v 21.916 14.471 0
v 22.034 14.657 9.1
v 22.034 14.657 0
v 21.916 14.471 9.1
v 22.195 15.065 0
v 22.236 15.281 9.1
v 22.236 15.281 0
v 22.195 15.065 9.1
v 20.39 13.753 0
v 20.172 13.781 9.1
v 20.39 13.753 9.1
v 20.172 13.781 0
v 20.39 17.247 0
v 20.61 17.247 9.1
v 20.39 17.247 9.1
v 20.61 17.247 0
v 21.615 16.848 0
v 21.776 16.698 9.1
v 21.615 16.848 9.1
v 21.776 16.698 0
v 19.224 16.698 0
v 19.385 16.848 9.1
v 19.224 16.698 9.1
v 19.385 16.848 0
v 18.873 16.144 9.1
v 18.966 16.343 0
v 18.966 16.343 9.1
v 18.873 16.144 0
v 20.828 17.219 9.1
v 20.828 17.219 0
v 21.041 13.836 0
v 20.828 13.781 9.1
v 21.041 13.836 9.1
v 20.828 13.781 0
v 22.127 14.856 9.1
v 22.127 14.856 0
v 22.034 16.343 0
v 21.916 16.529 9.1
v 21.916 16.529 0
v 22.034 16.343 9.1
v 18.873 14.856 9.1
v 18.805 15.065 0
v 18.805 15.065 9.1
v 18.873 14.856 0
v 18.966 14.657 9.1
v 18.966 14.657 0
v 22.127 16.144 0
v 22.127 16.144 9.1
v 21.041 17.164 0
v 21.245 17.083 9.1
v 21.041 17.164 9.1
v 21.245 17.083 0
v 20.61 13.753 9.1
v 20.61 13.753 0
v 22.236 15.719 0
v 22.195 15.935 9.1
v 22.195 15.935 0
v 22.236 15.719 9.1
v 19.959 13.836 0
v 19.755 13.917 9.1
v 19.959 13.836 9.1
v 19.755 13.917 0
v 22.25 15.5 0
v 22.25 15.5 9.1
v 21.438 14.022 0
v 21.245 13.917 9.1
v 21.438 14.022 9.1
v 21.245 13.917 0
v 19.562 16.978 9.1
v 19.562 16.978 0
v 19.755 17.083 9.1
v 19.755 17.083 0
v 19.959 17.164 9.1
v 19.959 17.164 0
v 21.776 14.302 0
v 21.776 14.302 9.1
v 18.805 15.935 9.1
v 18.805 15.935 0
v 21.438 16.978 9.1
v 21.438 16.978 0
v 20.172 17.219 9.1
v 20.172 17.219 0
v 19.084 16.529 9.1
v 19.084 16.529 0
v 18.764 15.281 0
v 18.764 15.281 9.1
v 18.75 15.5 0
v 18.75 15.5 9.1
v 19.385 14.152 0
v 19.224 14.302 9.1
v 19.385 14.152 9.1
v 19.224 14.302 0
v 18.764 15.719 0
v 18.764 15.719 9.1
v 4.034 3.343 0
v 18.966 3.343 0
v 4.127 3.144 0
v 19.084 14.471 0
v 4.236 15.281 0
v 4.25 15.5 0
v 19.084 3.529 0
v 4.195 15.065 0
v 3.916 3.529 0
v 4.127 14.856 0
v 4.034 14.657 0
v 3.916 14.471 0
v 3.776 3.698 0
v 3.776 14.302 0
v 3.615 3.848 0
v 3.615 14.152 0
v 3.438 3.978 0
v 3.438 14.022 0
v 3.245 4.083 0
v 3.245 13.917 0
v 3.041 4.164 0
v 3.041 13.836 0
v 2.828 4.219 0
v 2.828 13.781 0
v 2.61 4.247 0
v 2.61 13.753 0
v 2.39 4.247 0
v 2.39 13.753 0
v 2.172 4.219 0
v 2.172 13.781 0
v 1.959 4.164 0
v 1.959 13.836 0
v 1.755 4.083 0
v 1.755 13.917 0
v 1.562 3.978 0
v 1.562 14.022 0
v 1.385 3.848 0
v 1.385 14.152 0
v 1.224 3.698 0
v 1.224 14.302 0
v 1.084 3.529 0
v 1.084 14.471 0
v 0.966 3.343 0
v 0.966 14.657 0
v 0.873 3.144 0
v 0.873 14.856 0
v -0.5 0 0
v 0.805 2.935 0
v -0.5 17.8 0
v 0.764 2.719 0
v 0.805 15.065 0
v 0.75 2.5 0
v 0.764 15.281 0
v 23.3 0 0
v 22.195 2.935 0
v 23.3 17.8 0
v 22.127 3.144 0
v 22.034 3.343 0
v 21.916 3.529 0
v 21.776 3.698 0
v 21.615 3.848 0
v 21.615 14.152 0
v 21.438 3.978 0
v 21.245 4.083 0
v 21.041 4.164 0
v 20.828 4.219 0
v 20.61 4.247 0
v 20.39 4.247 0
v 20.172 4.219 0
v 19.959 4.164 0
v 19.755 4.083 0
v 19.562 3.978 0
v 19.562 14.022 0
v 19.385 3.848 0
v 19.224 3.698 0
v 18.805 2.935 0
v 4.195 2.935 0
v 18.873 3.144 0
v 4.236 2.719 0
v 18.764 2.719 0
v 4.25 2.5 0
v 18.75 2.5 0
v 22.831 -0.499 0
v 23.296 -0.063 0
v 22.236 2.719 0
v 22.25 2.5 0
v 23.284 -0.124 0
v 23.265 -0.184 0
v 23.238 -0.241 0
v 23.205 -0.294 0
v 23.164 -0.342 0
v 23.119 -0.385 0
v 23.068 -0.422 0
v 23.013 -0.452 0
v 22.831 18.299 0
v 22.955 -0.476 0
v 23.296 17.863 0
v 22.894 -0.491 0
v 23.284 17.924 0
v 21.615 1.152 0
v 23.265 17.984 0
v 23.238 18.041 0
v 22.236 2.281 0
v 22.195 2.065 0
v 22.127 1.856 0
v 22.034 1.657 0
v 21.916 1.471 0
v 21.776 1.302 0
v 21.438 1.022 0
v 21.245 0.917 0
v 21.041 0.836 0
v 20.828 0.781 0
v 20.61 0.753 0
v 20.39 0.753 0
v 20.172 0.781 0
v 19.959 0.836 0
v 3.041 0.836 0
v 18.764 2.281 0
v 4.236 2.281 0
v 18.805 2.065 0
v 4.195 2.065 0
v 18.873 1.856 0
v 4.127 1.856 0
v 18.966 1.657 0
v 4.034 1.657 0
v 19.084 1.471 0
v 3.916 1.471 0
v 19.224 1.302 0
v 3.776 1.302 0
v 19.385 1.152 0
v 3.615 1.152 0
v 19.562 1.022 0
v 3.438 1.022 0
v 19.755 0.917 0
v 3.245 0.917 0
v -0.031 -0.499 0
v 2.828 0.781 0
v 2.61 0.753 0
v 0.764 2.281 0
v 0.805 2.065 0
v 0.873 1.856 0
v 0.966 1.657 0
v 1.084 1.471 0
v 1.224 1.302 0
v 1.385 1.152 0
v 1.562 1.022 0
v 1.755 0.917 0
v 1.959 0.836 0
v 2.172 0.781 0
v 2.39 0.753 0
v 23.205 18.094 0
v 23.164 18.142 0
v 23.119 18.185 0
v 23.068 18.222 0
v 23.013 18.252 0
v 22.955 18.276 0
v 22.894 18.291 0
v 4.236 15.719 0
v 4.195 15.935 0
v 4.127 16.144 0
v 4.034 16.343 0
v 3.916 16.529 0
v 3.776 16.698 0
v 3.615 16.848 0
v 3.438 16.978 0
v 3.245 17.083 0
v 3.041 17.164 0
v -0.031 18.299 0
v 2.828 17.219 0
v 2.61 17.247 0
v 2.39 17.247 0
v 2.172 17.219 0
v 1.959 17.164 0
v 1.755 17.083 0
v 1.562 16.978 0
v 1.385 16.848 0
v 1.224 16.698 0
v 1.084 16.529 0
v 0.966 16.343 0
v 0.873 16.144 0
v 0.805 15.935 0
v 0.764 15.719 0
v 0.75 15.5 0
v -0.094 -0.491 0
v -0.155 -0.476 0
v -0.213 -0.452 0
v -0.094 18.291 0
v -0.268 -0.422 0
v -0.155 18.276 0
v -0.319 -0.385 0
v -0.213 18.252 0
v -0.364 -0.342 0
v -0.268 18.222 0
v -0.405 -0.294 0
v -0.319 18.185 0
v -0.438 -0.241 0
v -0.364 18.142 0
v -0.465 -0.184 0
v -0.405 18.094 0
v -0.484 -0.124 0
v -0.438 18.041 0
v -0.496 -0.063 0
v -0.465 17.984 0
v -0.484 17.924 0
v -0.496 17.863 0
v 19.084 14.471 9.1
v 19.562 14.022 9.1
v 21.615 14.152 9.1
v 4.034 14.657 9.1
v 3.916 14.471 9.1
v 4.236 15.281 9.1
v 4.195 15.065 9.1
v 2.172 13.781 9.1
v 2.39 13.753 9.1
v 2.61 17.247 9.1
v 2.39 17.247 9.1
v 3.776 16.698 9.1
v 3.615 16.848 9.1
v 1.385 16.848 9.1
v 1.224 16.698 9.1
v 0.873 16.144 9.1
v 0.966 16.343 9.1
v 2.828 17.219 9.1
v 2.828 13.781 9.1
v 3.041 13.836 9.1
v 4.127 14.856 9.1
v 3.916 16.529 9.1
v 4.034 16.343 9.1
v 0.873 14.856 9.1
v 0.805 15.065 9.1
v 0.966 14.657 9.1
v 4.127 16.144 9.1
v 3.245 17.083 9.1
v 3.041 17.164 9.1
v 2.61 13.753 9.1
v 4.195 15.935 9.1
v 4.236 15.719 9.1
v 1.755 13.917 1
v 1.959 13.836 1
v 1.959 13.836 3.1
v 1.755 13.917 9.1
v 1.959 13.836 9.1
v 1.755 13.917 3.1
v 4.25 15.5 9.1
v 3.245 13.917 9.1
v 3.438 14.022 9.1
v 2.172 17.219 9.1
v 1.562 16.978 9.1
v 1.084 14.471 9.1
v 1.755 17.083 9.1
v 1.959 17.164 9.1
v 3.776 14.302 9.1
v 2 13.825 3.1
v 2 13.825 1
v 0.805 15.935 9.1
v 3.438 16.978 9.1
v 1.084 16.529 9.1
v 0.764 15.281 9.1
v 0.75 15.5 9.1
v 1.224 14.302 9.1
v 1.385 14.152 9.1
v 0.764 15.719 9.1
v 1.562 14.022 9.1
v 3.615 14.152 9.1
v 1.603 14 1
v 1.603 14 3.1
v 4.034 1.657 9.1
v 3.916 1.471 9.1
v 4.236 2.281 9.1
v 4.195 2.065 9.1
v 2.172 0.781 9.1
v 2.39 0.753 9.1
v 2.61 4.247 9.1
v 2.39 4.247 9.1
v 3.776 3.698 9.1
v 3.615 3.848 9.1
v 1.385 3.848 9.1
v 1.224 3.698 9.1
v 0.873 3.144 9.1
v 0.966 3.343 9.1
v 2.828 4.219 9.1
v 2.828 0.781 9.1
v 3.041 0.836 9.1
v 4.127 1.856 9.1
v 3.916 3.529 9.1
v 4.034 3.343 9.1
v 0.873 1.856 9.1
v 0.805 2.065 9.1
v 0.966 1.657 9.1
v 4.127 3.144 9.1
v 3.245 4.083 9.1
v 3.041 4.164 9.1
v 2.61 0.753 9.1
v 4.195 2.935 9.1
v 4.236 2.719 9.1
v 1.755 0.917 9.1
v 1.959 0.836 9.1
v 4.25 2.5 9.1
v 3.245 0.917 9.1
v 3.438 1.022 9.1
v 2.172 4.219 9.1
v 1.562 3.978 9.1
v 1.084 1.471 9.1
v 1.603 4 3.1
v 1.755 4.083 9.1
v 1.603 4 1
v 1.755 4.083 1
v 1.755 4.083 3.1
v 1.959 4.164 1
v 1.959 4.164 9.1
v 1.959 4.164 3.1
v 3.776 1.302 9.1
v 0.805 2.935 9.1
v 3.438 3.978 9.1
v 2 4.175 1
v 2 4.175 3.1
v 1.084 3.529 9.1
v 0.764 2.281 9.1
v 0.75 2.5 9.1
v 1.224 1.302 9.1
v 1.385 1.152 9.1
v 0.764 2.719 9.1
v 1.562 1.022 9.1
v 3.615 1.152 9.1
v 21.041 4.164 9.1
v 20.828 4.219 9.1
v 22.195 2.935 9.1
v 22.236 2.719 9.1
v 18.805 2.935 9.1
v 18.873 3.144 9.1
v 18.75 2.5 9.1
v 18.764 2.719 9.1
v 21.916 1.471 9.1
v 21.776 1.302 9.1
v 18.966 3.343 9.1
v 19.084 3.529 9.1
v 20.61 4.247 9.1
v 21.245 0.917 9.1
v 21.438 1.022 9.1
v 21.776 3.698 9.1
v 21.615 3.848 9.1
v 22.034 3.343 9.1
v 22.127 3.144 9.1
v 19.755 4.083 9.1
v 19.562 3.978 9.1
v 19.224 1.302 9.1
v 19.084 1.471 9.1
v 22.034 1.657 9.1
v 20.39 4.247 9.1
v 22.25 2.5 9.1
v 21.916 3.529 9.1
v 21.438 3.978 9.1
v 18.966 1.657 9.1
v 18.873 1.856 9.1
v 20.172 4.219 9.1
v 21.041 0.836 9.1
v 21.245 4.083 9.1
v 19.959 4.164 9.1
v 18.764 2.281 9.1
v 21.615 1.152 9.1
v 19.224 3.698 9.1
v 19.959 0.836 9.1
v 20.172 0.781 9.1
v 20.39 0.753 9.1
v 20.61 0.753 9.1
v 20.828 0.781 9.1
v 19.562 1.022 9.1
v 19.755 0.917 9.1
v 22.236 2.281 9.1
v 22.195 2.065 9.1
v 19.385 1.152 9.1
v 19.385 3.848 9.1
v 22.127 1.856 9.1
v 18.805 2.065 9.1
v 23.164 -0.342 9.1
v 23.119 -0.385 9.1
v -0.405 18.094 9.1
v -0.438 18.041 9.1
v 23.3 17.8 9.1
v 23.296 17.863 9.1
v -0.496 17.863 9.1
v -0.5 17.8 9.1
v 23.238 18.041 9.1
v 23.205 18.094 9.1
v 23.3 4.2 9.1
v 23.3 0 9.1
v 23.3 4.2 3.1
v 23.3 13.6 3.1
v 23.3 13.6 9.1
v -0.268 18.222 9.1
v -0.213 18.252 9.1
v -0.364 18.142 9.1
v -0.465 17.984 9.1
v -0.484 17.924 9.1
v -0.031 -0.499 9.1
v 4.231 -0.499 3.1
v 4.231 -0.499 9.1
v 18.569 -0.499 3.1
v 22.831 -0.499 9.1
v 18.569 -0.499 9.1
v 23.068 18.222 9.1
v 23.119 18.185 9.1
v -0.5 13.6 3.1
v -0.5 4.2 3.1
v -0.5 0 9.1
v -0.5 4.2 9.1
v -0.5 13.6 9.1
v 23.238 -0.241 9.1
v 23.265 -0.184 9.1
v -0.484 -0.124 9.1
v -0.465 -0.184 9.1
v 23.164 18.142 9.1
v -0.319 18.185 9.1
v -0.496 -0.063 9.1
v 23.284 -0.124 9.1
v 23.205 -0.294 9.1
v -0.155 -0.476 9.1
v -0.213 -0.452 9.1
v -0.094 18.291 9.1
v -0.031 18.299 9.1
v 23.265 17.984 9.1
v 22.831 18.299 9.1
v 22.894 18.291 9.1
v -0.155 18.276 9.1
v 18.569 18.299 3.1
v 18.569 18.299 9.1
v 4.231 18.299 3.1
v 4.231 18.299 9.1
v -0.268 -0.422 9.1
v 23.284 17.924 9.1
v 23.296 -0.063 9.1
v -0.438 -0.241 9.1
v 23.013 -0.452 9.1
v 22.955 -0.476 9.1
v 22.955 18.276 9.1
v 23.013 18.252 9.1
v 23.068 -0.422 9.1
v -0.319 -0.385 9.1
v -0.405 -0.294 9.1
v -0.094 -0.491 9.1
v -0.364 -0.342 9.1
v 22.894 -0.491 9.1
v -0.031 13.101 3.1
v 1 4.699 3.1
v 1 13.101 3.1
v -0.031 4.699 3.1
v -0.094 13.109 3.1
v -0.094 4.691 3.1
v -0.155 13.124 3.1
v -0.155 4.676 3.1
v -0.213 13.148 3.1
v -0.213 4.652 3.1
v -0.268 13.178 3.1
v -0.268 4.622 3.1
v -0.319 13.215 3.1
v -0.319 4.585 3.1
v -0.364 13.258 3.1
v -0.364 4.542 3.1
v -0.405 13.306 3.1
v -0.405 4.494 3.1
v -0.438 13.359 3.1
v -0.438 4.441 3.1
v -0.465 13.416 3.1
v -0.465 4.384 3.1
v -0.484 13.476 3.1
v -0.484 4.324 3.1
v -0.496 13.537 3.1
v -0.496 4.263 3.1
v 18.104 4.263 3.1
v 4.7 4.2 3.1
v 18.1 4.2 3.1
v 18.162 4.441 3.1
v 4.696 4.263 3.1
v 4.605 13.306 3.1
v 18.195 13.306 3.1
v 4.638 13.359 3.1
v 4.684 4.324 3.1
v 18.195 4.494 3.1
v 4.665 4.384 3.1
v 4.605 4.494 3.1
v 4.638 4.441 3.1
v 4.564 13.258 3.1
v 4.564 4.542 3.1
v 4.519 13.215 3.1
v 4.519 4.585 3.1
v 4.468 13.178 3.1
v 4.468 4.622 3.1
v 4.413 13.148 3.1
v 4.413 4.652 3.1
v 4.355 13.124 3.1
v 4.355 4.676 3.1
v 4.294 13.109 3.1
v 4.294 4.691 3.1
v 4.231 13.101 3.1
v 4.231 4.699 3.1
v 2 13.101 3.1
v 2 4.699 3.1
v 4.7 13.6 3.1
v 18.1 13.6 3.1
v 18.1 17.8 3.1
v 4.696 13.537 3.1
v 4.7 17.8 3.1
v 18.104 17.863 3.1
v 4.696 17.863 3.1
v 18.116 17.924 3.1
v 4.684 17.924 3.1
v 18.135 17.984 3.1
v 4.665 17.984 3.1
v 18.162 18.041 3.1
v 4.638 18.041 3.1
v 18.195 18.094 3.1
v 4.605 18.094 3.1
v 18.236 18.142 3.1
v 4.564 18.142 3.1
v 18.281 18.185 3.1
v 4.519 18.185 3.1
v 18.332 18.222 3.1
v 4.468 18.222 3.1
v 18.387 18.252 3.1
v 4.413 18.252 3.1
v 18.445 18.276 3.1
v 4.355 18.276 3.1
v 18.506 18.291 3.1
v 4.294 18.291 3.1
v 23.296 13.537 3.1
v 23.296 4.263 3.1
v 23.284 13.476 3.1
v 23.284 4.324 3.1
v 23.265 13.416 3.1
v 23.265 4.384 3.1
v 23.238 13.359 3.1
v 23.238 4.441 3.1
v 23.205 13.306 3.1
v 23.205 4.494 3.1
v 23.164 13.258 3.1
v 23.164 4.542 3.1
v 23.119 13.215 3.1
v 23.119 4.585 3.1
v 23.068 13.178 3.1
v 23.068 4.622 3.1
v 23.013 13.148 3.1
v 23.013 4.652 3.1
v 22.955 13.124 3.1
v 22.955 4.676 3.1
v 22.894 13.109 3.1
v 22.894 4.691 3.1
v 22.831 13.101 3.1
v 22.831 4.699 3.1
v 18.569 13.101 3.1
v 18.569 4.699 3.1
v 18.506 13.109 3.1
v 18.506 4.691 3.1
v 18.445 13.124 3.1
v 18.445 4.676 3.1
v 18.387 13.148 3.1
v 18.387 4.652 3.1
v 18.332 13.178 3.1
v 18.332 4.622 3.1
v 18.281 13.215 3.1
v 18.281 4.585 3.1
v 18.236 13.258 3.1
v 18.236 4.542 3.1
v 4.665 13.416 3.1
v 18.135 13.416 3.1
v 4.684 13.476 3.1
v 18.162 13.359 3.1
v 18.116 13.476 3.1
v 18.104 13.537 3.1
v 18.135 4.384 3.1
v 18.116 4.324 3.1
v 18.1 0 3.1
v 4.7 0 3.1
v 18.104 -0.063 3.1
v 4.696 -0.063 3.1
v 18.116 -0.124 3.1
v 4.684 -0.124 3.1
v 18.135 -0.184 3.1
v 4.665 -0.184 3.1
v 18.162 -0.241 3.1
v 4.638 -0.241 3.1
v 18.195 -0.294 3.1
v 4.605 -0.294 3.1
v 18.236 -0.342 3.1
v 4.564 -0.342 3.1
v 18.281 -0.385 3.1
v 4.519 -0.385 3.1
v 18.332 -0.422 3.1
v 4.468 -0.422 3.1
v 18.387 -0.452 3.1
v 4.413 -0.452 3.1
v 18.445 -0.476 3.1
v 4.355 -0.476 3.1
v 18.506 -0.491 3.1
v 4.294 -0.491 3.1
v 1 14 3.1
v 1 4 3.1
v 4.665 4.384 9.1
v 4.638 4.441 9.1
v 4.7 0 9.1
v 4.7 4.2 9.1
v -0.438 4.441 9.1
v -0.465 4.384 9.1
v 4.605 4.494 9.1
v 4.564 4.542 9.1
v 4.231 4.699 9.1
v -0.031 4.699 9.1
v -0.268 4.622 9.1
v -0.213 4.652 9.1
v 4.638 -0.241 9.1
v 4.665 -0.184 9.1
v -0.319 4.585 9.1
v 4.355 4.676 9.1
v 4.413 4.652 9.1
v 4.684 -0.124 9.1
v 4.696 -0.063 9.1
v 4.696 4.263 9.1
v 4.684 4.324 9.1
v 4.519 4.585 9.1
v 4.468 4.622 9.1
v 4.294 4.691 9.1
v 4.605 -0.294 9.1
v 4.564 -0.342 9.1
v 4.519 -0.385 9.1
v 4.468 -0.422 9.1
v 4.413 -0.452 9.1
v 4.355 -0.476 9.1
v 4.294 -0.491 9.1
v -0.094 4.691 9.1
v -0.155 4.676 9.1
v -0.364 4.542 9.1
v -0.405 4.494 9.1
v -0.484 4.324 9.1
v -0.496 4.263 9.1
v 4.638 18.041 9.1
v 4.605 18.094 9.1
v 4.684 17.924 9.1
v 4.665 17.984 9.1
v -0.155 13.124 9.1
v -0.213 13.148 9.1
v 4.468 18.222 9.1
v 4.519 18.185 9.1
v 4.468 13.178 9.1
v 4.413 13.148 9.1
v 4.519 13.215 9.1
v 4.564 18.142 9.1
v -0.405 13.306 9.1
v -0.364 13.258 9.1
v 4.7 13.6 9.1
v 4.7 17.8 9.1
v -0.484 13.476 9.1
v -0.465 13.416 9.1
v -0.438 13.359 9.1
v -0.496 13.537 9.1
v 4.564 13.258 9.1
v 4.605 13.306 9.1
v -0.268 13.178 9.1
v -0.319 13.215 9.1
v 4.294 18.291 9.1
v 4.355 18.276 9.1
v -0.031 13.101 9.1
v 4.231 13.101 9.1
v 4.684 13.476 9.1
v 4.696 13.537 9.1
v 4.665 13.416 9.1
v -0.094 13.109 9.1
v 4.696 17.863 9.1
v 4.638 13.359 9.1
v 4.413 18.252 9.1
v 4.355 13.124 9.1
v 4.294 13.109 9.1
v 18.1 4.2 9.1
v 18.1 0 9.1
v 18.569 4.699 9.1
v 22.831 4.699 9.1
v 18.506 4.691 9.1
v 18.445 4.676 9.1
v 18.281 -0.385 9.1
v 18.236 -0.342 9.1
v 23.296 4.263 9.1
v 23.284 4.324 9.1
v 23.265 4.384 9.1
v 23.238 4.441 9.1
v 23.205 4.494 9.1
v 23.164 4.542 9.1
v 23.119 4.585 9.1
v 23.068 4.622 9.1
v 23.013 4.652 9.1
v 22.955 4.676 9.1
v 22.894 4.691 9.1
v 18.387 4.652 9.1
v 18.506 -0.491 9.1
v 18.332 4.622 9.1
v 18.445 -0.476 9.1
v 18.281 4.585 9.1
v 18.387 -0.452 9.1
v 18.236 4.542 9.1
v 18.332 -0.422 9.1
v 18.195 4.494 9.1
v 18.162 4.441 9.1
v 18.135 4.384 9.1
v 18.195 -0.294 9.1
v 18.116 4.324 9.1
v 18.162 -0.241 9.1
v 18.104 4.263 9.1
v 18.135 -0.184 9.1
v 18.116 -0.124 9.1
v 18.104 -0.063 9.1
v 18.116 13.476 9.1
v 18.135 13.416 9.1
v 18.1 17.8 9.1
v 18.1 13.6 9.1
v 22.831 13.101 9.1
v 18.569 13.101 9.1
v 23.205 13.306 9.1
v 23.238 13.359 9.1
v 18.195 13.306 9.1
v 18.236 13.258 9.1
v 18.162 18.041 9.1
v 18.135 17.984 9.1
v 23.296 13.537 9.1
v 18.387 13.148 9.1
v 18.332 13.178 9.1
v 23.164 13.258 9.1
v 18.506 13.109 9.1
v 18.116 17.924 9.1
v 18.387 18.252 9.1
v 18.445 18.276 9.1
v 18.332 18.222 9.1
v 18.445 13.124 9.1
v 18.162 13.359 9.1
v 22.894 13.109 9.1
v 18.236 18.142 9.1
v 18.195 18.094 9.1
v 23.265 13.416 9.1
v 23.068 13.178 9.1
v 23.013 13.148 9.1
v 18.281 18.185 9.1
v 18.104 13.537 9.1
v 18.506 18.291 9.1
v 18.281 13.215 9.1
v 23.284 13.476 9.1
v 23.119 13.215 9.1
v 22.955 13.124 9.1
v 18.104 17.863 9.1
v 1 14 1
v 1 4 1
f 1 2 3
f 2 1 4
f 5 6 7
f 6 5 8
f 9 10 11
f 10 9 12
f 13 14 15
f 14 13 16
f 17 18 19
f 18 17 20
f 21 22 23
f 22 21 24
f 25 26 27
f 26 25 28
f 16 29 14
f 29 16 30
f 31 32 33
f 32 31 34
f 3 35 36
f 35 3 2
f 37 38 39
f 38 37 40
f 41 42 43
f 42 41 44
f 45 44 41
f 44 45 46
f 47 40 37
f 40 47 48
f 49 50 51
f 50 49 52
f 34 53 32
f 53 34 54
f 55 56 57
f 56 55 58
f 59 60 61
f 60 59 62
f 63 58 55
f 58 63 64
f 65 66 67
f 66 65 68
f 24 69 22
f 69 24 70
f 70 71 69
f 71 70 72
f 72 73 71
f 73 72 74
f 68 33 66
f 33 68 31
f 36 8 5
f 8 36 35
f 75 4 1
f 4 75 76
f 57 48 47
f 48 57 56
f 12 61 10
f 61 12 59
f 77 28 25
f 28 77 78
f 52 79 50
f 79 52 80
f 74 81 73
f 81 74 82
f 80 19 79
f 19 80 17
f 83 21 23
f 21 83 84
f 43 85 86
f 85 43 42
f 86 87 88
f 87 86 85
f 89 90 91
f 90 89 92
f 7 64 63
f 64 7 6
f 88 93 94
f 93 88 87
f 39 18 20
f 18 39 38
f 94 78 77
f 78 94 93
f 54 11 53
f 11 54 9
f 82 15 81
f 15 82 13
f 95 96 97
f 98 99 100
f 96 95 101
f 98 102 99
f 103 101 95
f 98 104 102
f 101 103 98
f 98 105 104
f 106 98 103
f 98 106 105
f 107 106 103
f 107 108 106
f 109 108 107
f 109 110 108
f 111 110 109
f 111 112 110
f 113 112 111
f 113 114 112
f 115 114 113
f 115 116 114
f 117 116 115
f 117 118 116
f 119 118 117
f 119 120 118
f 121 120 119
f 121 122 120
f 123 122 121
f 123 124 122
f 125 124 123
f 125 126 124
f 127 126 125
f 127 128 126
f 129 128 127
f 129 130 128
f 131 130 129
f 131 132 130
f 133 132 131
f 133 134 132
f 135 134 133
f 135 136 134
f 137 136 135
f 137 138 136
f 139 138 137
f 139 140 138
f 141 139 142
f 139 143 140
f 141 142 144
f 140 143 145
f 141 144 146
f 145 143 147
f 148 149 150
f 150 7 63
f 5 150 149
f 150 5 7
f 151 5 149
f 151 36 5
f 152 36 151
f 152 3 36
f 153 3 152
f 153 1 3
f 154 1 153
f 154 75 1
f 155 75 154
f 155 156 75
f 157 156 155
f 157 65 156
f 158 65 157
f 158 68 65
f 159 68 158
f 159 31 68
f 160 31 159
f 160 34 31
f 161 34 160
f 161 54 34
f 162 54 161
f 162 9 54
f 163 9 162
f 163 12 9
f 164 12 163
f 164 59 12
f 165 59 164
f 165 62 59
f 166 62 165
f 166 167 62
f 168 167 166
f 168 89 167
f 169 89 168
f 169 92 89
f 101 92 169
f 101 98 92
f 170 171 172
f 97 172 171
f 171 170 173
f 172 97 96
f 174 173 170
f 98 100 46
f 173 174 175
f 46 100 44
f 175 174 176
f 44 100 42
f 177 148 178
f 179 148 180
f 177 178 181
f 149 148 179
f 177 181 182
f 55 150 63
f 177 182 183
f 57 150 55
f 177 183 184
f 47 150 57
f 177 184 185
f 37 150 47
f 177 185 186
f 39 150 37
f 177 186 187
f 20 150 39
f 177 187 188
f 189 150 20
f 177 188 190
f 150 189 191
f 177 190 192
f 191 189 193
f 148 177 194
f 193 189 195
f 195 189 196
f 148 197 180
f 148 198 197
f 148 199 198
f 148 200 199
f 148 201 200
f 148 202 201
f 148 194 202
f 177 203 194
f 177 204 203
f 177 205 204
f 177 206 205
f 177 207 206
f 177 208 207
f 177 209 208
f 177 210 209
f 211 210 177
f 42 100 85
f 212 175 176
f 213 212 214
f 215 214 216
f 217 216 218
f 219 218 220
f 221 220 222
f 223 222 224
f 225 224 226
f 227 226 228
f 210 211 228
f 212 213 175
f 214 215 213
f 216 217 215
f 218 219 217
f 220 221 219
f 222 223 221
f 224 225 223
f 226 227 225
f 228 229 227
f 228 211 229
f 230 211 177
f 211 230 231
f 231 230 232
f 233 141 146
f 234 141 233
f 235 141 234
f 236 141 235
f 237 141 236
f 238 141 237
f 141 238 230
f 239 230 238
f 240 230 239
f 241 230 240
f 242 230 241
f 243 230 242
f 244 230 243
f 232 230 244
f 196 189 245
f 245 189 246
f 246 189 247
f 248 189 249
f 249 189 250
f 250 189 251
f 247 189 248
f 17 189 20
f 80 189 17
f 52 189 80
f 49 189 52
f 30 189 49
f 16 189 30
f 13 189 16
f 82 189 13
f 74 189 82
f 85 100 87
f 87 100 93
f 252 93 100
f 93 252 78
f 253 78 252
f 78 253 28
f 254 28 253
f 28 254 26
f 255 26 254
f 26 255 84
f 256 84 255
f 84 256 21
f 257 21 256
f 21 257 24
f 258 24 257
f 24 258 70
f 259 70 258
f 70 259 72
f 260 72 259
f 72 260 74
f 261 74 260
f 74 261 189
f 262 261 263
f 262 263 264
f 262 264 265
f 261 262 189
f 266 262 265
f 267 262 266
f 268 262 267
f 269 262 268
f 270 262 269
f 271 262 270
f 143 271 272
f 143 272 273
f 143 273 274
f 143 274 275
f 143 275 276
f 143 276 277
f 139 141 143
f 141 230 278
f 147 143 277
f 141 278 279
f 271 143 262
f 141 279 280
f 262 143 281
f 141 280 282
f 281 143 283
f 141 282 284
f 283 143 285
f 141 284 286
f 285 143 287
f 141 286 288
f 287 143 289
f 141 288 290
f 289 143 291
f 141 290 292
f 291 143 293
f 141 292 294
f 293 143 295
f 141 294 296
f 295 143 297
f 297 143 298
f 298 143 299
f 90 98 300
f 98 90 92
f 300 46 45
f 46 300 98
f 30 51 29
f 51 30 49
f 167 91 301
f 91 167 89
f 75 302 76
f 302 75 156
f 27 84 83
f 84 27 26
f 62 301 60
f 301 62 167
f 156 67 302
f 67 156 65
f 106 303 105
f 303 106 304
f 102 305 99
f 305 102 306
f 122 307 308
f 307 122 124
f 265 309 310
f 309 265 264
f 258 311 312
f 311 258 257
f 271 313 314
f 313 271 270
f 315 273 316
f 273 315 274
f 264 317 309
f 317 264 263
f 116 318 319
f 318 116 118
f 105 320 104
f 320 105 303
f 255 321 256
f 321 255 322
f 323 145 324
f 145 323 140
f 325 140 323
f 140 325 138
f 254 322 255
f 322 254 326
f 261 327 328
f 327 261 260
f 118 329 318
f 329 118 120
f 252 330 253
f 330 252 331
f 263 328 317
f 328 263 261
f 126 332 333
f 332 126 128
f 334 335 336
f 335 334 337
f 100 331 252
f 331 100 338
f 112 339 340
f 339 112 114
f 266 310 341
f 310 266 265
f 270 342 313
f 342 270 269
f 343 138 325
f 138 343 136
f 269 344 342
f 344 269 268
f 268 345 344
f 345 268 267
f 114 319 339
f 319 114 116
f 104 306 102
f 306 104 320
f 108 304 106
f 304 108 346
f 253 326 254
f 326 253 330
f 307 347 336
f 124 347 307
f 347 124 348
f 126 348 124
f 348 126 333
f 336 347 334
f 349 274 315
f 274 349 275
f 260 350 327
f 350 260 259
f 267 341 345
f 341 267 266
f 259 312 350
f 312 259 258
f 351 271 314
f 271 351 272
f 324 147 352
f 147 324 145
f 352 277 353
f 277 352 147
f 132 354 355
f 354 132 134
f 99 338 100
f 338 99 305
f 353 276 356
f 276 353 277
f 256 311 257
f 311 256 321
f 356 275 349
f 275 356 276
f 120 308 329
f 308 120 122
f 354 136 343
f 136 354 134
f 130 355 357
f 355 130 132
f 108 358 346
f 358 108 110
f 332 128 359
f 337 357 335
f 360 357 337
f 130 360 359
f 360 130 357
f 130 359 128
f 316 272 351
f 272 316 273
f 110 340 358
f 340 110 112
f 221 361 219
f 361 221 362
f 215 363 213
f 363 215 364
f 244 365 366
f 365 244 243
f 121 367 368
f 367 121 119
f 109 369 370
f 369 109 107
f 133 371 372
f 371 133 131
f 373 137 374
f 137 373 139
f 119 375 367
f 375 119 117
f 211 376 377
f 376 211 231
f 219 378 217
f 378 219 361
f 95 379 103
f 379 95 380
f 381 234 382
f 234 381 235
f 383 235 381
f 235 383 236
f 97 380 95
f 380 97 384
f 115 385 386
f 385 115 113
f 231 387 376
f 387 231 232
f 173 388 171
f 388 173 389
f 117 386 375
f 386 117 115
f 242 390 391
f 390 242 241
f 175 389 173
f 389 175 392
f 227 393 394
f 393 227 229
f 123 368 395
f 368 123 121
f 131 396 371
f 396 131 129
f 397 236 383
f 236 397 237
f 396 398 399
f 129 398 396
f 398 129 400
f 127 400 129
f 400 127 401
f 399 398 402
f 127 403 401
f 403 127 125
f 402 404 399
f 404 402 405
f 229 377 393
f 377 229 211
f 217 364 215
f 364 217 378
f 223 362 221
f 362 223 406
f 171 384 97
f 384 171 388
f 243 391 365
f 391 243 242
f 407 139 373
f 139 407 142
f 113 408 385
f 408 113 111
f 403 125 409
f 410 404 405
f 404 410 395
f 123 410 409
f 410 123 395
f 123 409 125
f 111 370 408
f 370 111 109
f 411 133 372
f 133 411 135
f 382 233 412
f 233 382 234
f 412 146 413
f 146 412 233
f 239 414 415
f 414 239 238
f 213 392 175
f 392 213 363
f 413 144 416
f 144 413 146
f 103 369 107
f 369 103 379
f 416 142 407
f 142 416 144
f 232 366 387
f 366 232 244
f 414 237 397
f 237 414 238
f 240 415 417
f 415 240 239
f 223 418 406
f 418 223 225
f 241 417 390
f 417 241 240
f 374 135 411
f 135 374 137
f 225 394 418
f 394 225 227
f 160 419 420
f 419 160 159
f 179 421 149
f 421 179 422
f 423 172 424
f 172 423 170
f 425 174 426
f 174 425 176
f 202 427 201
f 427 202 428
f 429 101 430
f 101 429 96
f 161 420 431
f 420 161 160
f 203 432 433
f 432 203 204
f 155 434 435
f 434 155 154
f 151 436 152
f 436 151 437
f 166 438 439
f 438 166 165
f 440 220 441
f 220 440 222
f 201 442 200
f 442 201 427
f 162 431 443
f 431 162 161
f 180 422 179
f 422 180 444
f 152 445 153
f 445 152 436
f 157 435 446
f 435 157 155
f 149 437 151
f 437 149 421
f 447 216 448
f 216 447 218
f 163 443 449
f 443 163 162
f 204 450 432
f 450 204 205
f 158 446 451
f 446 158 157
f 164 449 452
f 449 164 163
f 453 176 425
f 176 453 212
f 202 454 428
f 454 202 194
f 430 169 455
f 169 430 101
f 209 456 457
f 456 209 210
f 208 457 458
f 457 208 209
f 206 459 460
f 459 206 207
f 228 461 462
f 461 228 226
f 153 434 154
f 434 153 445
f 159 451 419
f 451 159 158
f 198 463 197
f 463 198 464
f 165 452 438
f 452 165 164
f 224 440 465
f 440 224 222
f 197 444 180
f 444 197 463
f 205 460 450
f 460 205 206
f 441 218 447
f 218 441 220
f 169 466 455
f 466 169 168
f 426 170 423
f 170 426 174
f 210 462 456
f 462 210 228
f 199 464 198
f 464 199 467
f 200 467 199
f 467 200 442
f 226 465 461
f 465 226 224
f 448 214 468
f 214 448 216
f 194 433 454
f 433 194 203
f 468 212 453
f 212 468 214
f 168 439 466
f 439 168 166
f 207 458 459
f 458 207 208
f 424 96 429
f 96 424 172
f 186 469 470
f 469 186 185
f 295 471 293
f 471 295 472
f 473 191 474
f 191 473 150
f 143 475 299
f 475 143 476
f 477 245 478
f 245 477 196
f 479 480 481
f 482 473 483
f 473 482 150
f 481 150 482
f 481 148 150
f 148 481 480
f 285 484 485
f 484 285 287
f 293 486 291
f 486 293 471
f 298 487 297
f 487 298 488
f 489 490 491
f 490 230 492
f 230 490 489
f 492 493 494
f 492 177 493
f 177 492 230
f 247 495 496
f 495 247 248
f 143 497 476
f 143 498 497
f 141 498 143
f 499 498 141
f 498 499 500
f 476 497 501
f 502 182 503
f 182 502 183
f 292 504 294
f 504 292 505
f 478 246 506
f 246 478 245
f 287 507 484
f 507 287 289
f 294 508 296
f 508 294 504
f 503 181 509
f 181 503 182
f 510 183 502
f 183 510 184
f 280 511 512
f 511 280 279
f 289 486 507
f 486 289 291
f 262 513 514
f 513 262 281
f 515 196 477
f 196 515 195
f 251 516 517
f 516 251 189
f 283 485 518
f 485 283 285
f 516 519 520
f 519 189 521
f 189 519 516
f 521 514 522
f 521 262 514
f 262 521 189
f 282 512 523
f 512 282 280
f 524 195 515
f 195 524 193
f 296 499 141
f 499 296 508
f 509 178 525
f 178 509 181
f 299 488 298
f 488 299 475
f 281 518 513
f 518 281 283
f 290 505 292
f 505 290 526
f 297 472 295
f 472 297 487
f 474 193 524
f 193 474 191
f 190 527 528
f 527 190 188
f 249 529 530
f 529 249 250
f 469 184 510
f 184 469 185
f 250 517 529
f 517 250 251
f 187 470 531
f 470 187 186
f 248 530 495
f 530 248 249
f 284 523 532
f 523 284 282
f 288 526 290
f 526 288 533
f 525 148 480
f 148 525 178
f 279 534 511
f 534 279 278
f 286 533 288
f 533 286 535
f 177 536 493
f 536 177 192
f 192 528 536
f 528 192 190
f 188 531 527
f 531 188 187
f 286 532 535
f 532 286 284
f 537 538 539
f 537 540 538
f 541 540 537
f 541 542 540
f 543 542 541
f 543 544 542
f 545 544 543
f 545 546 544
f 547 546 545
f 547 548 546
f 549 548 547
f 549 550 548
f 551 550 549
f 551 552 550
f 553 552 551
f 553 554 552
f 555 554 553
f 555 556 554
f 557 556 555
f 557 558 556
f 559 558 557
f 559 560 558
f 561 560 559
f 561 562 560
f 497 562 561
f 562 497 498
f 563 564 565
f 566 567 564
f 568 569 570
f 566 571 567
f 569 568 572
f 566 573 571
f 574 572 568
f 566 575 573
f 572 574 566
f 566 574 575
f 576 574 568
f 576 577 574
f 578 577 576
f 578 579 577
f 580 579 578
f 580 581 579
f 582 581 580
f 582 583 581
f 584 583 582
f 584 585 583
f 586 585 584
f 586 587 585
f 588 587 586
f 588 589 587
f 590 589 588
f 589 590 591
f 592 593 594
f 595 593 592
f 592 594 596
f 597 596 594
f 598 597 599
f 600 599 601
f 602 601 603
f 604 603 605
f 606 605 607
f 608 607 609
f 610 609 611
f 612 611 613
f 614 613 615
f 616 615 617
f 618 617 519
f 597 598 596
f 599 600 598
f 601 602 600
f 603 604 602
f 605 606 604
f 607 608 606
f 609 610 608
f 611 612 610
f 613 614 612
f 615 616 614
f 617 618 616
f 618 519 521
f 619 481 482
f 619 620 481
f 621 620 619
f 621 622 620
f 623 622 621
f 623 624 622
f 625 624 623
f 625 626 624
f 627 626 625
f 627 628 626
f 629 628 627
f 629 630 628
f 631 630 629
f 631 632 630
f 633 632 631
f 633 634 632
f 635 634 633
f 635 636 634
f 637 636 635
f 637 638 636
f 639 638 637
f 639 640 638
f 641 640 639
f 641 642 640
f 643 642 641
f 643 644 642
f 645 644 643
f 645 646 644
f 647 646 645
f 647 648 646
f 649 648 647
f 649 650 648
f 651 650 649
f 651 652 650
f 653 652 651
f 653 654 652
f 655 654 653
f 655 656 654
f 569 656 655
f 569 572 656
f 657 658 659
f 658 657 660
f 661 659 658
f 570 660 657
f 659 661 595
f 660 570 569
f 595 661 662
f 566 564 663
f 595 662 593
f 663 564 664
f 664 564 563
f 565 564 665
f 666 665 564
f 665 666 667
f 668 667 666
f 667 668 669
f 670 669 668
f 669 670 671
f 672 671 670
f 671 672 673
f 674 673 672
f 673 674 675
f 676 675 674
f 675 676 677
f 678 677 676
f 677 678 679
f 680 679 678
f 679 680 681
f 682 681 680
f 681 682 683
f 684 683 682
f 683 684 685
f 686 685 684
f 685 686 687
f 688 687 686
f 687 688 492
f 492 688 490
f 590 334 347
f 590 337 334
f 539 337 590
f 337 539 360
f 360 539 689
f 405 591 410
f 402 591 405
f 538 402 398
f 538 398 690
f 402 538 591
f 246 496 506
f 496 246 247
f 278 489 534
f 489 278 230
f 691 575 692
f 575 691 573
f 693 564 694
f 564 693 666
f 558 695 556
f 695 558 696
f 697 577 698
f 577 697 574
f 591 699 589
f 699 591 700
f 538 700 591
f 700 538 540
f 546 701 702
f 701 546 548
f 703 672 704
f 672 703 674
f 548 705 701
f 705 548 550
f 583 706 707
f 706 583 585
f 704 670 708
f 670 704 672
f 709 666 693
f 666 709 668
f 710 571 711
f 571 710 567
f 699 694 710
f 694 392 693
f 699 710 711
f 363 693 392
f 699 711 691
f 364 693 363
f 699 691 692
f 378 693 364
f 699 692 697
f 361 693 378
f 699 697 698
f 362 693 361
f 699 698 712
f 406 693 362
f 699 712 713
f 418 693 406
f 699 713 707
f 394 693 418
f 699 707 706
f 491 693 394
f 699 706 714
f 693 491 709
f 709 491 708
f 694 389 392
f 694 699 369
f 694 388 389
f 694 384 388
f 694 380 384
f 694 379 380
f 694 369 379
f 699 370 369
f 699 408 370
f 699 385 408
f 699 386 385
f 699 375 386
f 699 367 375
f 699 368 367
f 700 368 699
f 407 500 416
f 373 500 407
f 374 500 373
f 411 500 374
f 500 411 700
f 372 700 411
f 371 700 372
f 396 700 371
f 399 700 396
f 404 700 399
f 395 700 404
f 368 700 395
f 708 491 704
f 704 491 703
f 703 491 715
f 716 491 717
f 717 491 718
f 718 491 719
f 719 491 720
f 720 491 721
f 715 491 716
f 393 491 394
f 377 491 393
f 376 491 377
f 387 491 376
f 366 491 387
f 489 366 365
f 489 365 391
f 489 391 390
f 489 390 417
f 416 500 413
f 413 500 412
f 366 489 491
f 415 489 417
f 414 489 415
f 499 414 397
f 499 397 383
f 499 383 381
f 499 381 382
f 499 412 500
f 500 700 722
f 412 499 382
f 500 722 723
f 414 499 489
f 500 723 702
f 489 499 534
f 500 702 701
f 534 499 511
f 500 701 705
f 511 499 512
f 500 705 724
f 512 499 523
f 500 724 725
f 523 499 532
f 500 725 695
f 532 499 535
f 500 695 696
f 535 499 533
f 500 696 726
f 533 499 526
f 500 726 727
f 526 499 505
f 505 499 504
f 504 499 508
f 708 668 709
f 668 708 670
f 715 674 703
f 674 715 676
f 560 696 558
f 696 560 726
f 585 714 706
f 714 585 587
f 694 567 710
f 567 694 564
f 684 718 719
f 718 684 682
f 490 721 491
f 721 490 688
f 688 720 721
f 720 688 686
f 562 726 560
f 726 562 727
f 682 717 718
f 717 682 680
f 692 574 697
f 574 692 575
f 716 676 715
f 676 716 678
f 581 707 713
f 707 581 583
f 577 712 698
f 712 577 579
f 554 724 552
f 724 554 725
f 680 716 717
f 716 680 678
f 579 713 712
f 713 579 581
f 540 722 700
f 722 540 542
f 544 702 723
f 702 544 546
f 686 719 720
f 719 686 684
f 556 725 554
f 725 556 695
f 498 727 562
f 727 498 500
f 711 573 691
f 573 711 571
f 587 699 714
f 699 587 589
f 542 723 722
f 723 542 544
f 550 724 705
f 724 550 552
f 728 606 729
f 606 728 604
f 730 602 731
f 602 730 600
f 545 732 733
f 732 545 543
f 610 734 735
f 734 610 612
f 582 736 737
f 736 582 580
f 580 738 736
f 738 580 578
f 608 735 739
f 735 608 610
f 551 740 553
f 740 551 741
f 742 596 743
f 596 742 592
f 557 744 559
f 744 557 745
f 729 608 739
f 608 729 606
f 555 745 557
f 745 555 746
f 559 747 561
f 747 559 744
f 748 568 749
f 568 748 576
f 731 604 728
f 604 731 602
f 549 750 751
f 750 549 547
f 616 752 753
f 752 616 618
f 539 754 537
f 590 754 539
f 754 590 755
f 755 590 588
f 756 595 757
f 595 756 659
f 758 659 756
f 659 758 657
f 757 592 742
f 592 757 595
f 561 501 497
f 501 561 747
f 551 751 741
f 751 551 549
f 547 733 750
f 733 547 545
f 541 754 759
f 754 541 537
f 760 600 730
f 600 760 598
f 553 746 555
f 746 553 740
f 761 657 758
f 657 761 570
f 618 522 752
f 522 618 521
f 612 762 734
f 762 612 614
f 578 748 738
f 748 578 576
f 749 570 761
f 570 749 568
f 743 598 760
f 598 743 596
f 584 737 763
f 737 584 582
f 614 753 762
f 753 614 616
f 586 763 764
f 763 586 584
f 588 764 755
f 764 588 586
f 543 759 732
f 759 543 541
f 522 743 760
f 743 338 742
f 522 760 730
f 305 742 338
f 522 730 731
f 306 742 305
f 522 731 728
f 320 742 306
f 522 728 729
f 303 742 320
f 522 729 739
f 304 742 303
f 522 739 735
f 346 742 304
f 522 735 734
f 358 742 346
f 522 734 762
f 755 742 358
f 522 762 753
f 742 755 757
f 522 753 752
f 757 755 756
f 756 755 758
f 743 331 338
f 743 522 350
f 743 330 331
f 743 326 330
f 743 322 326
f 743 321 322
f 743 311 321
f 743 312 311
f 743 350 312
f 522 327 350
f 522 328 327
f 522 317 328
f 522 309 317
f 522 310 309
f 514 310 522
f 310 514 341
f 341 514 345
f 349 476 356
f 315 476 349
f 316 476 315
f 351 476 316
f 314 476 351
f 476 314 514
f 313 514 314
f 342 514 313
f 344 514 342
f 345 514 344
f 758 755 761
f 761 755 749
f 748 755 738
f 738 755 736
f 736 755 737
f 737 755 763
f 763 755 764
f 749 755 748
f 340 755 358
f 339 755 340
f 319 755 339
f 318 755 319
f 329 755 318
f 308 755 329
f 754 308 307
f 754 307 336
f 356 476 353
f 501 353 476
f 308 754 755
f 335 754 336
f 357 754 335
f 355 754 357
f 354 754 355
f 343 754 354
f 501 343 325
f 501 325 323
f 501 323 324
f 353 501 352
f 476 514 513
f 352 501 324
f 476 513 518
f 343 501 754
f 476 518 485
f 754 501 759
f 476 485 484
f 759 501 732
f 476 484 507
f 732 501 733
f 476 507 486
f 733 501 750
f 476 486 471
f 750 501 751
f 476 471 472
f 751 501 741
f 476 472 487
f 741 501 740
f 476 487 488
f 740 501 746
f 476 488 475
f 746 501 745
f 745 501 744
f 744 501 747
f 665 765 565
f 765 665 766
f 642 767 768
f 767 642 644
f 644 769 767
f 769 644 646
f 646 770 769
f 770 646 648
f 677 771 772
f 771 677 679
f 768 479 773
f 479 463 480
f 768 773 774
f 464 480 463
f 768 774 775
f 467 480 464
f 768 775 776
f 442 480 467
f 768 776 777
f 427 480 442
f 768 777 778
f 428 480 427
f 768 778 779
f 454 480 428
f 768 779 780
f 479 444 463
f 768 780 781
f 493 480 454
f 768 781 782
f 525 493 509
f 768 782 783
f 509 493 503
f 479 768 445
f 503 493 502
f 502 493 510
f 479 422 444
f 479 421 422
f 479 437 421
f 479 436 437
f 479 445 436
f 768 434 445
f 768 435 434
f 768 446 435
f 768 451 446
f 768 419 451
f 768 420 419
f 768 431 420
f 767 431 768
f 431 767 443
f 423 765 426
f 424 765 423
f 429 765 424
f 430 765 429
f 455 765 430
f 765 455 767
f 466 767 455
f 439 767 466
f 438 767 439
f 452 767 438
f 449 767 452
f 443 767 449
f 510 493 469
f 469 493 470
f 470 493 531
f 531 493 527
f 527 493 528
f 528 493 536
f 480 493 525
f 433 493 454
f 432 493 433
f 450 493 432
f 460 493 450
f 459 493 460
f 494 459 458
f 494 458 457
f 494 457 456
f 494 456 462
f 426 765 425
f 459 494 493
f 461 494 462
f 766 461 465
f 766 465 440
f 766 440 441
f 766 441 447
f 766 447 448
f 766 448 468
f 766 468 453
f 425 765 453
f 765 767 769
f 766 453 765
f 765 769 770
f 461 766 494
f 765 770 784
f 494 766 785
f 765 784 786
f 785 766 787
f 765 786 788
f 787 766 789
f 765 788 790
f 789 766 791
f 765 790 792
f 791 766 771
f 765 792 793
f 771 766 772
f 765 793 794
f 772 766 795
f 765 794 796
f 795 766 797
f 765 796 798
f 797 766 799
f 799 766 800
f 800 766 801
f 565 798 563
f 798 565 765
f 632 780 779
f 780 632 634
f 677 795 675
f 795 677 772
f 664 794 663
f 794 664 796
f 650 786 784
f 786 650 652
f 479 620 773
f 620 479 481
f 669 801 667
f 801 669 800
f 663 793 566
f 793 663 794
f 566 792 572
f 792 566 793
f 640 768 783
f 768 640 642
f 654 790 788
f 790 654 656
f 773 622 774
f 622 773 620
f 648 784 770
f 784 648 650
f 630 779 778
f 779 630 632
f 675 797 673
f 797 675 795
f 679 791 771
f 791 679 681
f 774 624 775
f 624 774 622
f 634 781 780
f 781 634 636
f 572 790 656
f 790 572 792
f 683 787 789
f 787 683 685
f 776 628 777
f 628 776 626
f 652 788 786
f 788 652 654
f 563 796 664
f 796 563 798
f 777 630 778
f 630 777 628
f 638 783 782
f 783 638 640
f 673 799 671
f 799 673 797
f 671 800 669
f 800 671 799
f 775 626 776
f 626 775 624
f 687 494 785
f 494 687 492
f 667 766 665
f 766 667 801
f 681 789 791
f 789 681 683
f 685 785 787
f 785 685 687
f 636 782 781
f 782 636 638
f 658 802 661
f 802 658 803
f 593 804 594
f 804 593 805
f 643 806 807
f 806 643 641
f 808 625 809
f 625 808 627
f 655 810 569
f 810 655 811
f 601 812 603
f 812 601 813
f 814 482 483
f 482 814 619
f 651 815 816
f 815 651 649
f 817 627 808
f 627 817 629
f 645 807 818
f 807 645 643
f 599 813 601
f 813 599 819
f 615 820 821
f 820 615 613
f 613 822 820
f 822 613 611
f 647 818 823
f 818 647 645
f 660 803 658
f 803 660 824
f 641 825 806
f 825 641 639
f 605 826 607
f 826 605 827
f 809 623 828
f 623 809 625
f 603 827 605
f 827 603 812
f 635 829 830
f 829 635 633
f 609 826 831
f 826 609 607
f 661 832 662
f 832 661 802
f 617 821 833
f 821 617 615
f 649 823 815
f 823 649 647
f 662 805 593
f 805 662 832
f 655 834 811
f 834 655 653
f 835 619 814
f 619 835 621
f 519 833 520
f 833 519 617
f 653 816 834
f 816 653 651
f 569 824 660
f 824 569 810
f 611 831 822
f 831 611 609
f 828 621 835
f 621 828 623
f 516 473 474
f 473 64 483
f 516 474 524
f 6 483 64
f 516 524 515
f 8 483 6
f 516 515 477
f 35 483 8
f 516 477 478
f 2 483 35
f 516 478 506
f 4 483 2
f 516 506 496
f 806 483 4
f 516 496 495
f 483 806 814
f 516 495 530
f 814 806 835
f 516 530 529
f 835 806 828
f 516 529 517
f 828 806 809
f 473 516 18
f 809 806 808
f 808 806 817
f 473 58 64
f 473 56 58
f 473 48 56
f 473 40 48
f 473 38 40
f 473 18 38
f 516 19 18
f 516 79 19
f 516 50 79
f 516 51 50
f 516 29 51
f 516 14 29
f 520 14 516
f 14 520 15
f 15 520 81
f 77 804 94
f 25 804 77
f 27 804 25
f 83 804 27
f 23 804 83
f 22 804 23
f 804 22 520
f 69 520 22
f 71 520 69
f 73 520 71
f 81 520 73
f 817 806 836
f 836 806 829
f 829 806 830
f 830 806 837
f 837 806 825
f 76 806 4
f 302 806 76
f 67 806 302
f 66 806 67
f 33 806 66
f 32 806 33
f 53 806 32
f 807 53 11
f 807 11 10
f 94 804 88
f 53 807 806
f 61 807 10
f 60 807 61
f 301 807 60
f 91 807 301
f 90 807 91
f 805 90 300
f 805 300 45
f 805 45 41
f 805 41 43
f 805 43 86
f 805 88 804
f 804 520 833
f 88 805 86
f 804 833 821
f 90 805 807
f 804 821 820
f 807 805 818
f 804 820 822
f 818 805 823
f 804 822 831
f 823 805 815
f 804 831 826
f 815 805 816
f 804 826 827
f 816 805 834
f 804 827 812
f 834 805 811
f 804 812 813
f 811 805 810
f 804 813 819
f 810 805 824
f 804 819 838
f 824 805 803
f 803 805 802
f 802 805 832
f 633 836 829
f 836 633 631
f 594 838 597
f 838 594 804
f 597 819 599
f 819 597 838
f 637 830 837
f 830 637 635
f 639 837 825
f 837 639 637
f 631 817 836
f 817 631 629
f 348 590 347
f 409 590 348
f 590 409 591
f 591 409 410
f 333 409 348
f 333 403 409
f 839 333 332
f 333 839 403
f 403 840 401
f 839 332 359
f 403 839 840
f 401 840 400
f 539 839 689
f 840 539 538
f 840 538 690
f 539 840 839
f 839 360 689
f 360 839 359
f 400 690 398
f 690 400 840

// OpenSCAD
$fn=50;

module base() {
  union () { 
    minkowski() {
      cube([22.8 , 17.8, 3]);
      cylinder(h=0.1, d=1);
    }

    minkowski() {
      translate([0,0,0]) cube([4.2,4.2,9]);
      cylinder(h=0.1, d=1);
    }
    minkowski() {
     translate([0,13.6,0]) cube([4.2,4.2,9]);
     cylinder(h=0.1, d=1);
    }
    minkowski() {
     translate([18.6,0,0]) cube([4.2,4.2,9]);
     cylinder(h=0.1, d=1);
    }
    minkowski() {
     translate([18.6,13.6,0]) cube([4.2,4.2,9]);
     cylinder(h=0.1, d=1);
    }
  }  
}

module screws() {
  translate([20.5,15.5,0]) cylinder(h=10, d=3.5);
  translate([2.5,15.5,0]) cylinder(h=10, d=3.5);
  translate([2.5,2.5,0]) cylinder(h=10, d=3.5);
  translate([20.5,2.5,0]) cylinder(h=10, d=3.5);  
}

module pin_holder() {
  translate([1,4,1]) cube([1,10,2.1]);  
}

difference() {
  base();
  screws();
  pin_holder();
}
